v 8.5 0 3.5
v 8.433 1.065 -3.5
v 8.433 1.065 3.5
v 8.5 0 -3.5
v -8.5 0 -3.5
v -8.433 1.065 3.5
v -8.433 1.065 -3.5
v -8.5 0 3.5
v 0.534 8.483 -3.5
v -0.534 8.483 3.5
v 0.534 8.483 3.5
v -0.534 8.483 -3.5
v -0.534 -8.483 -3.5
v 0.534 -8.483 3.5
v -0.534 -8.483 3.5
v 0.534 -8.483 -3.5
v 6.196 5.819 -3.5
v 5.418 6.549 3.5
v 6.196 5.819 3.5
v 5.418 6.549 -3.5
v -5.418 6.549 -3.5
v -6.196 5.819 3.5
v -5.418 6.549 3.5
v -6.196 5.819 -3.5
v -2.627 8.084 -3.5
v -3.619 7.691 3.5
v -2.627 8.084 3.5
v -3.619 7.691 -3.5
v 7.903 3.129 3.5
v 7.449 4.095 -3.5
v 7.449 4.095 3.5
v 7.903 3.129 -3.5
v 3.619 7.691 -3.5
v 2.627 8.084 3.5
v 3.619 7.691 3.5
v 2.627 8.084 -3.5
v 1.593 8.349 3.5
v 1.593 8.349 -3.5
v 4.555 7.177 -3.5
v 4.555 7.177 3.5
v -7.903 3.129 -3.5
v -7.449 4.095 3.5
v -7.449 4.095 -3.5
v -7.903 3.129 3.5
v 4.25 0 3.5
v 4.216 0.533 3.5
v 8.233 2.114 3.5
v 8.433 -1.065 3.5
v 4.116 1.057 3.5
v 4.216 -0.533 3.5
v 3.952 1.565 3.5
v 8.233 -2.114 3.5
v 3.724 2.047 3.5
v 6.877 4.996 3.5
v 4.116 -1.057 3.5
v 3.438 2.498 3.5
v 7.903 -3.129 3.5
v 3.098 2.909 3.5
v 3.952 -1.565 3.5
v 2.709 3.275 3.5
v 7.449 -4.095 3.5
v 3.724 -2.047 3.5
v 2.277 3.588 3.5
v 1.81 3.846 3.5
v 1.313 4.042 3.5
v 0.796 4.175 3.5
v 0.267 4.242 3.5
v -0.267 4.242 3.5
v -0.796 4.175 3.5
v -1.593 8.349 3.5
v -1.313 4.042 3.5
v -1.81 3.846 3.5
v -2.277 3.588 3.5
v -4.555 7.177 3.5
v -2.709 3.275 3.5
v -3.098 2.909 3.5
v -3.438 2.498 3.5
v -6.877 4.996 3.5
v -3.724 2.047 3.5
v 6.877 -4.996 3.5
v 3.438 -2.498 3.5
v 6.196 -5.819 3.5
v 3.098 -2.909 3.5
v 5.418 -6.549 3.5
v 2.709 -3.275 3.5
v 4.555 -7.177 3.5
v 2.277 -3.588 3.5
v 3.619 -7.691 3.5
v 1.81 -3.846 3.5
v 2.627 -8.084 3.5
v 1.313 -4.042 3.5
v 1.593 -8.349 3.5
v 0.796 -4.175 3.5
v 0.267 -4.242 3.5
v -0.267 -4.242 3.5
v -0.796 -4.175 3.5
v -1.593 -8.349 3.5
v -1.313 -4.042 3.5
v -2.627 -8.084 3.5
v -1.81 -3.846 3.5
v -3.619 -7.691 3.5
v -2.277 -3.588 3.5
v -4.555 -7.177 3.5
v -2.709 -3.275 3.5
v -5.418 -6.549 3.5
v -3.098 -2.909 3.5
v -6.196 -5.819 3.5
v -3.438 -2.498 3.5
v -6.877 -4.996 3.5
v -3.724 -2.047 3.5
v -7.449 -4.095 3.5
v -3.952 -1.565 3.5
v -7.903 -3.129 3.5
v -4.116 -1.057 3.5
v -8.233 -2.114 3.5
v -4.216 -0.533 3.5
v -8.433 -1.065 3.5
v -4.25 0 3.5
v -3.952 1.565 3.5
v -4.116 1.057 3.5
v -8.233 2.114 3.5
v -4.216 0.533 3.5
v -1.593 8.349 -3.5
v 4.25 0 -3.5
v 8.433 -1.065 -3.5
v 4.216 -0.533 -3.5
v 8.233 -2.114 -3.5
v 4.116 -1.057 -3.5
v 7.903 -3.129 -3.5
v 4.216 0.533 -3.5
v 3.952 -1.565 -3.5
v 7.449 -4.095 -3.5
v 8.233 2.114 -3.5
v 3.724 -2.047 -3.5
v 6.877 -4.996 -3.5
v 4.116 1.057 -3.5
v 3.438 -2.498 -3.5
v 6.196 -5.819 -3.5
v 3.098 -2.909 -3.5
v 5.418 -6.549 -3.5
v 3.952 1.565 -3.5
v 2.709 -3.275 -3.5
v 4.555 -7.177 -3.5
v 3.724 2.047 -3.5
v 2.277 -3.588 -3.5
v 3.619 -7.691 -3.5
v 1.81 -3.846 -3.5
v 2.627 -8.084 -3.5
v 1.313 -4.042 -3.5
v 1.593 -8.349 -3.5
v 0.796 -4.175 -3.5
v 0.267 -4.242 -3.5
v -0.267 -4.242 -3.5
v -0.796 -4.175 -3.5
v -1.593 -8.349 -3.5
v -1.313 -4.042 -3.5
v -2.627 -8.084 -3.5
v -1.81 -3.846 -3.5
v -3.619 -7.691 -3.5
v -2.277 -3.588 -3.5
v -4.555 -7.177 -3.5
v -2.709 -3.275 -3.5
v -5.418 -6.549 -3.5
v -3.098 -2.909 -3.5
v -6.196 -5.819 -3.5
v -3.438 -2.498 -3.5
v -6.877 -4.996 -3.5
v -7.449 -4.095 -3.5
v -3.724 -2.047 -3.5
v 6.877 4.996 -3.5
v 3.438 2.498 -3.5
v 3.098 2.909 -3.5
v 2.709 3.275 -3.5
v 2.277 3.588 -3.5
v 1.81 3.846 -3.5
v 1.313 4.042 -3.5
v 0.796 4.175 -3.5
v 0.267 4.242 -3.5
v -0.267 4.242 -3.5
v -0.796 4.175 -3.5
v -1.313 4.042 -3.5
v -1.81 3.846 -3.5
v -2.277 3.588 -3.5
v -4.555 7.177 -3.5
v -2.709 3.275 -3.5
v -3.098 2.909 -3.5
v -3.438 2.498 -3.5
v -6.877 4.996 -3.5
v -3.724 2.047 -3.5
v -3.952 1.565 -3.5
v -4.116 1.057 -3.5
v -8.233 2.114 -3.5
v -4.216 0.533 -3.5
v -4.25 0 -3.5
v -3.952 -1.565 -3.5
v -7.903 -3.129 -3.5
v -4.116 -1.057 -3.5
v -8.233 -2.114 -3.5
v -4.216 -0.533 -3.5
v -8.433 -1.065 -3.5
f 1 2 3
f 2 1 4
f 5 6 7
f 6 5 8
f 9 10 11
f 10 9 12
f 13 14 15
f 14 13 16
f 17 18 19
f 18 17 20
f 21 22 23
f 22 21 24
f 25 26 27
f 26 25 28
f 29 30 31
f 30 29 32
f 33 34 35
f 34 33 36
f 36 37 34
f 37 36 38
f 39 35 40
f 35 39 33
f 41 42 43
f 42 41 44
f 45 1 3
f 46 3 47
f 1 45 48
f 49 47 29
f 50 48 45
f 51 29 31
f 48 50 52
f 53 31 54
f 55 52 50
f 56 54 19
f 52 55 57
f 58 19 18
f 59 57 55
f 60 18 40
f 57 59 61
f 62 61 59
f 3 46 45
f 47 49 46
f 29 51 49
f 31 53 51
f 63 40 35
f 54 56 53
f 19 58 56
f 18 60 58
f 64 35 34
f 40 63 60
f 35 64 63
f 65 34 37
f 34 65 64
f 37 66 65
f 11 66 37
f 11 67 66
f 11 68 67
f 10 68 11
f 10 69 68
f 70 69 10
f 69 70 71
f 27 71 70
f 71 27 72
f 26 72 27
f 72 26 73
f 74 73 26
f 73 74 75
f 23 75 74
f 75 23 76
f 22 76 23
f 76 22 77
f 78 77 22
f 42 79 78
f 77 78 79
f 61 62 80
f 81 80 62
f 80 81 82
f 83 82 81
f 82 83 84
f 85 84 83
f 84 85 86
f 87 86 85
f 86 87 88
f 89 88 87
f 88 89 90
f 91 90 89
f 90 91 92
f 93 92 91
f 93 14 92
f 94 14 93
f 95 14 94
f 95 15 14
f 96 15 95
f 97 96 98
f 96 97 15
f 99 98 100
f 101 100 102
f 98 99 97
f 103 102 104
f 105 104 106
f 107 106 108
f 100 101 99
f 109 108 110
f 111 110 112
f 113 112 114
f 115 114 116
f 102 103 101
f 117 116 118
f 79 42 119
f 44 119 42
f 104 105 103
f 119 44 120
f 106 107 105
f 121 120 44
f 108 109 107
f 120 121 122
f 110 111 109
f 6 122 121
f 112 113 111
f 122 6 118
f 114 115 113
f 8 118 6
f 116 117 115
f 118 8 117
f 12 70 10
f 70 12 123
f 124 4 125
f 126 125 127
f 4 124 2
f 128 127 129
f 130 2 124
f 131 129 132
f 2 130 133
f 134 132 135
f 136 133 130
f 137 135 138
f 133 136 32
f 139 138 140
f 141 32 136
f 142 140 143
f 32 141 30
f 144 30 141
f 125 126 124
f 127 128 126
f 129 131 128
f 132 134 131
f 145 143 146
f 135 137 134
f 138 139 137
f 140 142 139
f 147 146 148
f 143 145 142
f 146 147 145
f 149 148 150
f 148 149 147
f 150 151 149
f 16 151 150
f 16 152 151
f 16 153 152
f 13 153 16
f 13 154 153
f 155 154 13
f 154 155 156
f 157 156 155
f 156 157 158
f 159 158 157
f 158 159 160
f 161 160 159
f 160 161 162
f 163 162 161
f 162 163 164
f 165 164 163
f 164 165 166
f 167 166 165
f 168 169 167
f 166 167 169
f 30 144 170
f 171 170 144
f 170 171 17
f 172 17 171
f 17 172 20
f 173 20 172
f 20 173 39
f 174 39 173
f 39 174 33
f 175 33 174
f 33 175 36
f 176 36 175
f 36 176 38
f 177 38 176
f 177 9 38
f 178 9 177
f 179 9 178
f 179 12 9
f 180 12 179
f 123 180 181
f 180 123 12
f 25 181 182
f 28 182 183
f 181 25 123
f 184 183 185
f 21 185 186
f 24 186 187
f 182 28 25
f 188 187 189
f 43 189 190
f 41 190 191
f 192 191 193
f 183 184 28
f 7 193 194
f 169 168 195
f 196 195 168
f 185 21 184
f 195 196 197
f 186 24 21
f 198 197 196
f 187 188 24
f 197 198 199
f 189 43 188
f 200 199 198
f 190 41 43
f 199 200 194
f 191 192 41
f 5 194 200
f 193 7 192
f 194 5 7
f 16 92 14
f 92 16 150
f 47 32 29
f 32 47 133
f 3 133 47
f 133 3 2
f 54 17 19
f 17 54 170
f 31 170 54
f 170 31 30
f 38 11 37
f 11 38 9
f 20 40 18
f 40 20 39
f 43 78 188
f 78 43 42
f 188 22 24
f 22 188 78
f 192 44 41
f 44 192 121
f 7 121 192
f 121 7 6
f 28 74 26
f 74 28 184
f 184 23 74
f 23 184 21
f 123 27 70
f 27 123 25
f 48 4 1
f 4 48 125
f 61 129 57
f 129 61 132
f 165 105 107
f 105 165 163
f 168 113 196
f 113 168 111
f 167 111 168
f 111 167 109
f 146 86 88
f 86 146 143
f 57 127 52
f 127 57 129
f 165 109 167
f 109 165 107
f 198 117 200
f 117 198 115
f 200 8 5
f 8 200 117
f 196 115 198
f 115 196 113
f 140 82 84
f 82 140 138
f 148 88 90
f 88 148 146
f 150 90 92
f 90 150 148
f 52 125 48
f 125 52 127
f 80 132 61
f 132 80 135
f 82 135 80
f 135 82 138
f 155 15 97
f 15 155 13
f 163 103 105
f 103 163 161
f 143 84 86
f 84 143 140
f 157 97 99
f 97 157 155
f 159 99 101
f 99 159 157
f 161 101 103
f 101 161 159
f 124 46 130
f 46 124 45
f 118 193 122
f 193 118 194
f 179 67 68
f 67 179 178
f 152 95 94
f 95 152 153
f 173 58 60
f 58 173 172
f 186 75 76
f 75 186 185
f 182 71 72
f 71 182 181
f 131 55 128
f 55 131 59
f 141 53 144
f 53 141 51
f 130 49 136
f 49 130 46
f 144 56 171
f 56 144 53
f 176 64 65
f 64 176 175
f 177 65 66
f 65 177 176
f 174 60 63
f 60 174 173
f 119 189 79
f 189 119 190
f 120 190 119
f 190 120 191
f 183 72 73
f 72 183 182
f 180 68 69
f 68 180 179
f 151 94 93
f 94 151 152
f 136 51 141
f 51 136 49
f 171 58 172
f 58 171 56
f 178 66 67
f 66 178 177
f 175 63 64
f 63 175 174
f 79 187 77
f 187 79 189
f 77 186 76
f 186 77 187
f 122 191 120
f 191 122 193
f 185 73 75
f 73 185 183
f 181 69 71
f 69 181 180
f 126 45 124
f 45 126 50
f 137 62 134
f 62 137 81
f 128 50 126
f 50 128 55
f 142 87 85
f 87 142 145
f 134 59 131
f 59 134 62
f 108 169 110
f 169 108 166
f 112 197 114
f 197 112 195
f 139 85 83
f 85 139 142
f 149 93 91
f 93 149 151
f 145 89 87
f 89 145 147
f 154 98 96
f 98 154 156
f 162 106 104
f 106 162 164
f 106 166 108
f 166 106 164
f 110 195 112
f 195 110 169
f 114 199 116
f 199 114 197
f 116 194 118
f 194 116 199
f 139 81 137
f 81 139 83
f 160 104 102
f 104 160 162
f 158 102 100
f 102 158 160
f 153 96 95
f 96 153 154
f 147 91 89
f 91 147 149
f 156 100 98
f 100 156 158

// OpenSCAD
$fn = 50;


difference() {
	union() {
		translate(v = [0, 0, -3.5000000000]) {
			cylinder(h = 7, r = 8.5000000000);
		}
	}
	union() {
		translate(v = [0, 0, -100.0000000000]) {
			cylinder(h = 200, r = 4.2500000000);
		}
	}
}
